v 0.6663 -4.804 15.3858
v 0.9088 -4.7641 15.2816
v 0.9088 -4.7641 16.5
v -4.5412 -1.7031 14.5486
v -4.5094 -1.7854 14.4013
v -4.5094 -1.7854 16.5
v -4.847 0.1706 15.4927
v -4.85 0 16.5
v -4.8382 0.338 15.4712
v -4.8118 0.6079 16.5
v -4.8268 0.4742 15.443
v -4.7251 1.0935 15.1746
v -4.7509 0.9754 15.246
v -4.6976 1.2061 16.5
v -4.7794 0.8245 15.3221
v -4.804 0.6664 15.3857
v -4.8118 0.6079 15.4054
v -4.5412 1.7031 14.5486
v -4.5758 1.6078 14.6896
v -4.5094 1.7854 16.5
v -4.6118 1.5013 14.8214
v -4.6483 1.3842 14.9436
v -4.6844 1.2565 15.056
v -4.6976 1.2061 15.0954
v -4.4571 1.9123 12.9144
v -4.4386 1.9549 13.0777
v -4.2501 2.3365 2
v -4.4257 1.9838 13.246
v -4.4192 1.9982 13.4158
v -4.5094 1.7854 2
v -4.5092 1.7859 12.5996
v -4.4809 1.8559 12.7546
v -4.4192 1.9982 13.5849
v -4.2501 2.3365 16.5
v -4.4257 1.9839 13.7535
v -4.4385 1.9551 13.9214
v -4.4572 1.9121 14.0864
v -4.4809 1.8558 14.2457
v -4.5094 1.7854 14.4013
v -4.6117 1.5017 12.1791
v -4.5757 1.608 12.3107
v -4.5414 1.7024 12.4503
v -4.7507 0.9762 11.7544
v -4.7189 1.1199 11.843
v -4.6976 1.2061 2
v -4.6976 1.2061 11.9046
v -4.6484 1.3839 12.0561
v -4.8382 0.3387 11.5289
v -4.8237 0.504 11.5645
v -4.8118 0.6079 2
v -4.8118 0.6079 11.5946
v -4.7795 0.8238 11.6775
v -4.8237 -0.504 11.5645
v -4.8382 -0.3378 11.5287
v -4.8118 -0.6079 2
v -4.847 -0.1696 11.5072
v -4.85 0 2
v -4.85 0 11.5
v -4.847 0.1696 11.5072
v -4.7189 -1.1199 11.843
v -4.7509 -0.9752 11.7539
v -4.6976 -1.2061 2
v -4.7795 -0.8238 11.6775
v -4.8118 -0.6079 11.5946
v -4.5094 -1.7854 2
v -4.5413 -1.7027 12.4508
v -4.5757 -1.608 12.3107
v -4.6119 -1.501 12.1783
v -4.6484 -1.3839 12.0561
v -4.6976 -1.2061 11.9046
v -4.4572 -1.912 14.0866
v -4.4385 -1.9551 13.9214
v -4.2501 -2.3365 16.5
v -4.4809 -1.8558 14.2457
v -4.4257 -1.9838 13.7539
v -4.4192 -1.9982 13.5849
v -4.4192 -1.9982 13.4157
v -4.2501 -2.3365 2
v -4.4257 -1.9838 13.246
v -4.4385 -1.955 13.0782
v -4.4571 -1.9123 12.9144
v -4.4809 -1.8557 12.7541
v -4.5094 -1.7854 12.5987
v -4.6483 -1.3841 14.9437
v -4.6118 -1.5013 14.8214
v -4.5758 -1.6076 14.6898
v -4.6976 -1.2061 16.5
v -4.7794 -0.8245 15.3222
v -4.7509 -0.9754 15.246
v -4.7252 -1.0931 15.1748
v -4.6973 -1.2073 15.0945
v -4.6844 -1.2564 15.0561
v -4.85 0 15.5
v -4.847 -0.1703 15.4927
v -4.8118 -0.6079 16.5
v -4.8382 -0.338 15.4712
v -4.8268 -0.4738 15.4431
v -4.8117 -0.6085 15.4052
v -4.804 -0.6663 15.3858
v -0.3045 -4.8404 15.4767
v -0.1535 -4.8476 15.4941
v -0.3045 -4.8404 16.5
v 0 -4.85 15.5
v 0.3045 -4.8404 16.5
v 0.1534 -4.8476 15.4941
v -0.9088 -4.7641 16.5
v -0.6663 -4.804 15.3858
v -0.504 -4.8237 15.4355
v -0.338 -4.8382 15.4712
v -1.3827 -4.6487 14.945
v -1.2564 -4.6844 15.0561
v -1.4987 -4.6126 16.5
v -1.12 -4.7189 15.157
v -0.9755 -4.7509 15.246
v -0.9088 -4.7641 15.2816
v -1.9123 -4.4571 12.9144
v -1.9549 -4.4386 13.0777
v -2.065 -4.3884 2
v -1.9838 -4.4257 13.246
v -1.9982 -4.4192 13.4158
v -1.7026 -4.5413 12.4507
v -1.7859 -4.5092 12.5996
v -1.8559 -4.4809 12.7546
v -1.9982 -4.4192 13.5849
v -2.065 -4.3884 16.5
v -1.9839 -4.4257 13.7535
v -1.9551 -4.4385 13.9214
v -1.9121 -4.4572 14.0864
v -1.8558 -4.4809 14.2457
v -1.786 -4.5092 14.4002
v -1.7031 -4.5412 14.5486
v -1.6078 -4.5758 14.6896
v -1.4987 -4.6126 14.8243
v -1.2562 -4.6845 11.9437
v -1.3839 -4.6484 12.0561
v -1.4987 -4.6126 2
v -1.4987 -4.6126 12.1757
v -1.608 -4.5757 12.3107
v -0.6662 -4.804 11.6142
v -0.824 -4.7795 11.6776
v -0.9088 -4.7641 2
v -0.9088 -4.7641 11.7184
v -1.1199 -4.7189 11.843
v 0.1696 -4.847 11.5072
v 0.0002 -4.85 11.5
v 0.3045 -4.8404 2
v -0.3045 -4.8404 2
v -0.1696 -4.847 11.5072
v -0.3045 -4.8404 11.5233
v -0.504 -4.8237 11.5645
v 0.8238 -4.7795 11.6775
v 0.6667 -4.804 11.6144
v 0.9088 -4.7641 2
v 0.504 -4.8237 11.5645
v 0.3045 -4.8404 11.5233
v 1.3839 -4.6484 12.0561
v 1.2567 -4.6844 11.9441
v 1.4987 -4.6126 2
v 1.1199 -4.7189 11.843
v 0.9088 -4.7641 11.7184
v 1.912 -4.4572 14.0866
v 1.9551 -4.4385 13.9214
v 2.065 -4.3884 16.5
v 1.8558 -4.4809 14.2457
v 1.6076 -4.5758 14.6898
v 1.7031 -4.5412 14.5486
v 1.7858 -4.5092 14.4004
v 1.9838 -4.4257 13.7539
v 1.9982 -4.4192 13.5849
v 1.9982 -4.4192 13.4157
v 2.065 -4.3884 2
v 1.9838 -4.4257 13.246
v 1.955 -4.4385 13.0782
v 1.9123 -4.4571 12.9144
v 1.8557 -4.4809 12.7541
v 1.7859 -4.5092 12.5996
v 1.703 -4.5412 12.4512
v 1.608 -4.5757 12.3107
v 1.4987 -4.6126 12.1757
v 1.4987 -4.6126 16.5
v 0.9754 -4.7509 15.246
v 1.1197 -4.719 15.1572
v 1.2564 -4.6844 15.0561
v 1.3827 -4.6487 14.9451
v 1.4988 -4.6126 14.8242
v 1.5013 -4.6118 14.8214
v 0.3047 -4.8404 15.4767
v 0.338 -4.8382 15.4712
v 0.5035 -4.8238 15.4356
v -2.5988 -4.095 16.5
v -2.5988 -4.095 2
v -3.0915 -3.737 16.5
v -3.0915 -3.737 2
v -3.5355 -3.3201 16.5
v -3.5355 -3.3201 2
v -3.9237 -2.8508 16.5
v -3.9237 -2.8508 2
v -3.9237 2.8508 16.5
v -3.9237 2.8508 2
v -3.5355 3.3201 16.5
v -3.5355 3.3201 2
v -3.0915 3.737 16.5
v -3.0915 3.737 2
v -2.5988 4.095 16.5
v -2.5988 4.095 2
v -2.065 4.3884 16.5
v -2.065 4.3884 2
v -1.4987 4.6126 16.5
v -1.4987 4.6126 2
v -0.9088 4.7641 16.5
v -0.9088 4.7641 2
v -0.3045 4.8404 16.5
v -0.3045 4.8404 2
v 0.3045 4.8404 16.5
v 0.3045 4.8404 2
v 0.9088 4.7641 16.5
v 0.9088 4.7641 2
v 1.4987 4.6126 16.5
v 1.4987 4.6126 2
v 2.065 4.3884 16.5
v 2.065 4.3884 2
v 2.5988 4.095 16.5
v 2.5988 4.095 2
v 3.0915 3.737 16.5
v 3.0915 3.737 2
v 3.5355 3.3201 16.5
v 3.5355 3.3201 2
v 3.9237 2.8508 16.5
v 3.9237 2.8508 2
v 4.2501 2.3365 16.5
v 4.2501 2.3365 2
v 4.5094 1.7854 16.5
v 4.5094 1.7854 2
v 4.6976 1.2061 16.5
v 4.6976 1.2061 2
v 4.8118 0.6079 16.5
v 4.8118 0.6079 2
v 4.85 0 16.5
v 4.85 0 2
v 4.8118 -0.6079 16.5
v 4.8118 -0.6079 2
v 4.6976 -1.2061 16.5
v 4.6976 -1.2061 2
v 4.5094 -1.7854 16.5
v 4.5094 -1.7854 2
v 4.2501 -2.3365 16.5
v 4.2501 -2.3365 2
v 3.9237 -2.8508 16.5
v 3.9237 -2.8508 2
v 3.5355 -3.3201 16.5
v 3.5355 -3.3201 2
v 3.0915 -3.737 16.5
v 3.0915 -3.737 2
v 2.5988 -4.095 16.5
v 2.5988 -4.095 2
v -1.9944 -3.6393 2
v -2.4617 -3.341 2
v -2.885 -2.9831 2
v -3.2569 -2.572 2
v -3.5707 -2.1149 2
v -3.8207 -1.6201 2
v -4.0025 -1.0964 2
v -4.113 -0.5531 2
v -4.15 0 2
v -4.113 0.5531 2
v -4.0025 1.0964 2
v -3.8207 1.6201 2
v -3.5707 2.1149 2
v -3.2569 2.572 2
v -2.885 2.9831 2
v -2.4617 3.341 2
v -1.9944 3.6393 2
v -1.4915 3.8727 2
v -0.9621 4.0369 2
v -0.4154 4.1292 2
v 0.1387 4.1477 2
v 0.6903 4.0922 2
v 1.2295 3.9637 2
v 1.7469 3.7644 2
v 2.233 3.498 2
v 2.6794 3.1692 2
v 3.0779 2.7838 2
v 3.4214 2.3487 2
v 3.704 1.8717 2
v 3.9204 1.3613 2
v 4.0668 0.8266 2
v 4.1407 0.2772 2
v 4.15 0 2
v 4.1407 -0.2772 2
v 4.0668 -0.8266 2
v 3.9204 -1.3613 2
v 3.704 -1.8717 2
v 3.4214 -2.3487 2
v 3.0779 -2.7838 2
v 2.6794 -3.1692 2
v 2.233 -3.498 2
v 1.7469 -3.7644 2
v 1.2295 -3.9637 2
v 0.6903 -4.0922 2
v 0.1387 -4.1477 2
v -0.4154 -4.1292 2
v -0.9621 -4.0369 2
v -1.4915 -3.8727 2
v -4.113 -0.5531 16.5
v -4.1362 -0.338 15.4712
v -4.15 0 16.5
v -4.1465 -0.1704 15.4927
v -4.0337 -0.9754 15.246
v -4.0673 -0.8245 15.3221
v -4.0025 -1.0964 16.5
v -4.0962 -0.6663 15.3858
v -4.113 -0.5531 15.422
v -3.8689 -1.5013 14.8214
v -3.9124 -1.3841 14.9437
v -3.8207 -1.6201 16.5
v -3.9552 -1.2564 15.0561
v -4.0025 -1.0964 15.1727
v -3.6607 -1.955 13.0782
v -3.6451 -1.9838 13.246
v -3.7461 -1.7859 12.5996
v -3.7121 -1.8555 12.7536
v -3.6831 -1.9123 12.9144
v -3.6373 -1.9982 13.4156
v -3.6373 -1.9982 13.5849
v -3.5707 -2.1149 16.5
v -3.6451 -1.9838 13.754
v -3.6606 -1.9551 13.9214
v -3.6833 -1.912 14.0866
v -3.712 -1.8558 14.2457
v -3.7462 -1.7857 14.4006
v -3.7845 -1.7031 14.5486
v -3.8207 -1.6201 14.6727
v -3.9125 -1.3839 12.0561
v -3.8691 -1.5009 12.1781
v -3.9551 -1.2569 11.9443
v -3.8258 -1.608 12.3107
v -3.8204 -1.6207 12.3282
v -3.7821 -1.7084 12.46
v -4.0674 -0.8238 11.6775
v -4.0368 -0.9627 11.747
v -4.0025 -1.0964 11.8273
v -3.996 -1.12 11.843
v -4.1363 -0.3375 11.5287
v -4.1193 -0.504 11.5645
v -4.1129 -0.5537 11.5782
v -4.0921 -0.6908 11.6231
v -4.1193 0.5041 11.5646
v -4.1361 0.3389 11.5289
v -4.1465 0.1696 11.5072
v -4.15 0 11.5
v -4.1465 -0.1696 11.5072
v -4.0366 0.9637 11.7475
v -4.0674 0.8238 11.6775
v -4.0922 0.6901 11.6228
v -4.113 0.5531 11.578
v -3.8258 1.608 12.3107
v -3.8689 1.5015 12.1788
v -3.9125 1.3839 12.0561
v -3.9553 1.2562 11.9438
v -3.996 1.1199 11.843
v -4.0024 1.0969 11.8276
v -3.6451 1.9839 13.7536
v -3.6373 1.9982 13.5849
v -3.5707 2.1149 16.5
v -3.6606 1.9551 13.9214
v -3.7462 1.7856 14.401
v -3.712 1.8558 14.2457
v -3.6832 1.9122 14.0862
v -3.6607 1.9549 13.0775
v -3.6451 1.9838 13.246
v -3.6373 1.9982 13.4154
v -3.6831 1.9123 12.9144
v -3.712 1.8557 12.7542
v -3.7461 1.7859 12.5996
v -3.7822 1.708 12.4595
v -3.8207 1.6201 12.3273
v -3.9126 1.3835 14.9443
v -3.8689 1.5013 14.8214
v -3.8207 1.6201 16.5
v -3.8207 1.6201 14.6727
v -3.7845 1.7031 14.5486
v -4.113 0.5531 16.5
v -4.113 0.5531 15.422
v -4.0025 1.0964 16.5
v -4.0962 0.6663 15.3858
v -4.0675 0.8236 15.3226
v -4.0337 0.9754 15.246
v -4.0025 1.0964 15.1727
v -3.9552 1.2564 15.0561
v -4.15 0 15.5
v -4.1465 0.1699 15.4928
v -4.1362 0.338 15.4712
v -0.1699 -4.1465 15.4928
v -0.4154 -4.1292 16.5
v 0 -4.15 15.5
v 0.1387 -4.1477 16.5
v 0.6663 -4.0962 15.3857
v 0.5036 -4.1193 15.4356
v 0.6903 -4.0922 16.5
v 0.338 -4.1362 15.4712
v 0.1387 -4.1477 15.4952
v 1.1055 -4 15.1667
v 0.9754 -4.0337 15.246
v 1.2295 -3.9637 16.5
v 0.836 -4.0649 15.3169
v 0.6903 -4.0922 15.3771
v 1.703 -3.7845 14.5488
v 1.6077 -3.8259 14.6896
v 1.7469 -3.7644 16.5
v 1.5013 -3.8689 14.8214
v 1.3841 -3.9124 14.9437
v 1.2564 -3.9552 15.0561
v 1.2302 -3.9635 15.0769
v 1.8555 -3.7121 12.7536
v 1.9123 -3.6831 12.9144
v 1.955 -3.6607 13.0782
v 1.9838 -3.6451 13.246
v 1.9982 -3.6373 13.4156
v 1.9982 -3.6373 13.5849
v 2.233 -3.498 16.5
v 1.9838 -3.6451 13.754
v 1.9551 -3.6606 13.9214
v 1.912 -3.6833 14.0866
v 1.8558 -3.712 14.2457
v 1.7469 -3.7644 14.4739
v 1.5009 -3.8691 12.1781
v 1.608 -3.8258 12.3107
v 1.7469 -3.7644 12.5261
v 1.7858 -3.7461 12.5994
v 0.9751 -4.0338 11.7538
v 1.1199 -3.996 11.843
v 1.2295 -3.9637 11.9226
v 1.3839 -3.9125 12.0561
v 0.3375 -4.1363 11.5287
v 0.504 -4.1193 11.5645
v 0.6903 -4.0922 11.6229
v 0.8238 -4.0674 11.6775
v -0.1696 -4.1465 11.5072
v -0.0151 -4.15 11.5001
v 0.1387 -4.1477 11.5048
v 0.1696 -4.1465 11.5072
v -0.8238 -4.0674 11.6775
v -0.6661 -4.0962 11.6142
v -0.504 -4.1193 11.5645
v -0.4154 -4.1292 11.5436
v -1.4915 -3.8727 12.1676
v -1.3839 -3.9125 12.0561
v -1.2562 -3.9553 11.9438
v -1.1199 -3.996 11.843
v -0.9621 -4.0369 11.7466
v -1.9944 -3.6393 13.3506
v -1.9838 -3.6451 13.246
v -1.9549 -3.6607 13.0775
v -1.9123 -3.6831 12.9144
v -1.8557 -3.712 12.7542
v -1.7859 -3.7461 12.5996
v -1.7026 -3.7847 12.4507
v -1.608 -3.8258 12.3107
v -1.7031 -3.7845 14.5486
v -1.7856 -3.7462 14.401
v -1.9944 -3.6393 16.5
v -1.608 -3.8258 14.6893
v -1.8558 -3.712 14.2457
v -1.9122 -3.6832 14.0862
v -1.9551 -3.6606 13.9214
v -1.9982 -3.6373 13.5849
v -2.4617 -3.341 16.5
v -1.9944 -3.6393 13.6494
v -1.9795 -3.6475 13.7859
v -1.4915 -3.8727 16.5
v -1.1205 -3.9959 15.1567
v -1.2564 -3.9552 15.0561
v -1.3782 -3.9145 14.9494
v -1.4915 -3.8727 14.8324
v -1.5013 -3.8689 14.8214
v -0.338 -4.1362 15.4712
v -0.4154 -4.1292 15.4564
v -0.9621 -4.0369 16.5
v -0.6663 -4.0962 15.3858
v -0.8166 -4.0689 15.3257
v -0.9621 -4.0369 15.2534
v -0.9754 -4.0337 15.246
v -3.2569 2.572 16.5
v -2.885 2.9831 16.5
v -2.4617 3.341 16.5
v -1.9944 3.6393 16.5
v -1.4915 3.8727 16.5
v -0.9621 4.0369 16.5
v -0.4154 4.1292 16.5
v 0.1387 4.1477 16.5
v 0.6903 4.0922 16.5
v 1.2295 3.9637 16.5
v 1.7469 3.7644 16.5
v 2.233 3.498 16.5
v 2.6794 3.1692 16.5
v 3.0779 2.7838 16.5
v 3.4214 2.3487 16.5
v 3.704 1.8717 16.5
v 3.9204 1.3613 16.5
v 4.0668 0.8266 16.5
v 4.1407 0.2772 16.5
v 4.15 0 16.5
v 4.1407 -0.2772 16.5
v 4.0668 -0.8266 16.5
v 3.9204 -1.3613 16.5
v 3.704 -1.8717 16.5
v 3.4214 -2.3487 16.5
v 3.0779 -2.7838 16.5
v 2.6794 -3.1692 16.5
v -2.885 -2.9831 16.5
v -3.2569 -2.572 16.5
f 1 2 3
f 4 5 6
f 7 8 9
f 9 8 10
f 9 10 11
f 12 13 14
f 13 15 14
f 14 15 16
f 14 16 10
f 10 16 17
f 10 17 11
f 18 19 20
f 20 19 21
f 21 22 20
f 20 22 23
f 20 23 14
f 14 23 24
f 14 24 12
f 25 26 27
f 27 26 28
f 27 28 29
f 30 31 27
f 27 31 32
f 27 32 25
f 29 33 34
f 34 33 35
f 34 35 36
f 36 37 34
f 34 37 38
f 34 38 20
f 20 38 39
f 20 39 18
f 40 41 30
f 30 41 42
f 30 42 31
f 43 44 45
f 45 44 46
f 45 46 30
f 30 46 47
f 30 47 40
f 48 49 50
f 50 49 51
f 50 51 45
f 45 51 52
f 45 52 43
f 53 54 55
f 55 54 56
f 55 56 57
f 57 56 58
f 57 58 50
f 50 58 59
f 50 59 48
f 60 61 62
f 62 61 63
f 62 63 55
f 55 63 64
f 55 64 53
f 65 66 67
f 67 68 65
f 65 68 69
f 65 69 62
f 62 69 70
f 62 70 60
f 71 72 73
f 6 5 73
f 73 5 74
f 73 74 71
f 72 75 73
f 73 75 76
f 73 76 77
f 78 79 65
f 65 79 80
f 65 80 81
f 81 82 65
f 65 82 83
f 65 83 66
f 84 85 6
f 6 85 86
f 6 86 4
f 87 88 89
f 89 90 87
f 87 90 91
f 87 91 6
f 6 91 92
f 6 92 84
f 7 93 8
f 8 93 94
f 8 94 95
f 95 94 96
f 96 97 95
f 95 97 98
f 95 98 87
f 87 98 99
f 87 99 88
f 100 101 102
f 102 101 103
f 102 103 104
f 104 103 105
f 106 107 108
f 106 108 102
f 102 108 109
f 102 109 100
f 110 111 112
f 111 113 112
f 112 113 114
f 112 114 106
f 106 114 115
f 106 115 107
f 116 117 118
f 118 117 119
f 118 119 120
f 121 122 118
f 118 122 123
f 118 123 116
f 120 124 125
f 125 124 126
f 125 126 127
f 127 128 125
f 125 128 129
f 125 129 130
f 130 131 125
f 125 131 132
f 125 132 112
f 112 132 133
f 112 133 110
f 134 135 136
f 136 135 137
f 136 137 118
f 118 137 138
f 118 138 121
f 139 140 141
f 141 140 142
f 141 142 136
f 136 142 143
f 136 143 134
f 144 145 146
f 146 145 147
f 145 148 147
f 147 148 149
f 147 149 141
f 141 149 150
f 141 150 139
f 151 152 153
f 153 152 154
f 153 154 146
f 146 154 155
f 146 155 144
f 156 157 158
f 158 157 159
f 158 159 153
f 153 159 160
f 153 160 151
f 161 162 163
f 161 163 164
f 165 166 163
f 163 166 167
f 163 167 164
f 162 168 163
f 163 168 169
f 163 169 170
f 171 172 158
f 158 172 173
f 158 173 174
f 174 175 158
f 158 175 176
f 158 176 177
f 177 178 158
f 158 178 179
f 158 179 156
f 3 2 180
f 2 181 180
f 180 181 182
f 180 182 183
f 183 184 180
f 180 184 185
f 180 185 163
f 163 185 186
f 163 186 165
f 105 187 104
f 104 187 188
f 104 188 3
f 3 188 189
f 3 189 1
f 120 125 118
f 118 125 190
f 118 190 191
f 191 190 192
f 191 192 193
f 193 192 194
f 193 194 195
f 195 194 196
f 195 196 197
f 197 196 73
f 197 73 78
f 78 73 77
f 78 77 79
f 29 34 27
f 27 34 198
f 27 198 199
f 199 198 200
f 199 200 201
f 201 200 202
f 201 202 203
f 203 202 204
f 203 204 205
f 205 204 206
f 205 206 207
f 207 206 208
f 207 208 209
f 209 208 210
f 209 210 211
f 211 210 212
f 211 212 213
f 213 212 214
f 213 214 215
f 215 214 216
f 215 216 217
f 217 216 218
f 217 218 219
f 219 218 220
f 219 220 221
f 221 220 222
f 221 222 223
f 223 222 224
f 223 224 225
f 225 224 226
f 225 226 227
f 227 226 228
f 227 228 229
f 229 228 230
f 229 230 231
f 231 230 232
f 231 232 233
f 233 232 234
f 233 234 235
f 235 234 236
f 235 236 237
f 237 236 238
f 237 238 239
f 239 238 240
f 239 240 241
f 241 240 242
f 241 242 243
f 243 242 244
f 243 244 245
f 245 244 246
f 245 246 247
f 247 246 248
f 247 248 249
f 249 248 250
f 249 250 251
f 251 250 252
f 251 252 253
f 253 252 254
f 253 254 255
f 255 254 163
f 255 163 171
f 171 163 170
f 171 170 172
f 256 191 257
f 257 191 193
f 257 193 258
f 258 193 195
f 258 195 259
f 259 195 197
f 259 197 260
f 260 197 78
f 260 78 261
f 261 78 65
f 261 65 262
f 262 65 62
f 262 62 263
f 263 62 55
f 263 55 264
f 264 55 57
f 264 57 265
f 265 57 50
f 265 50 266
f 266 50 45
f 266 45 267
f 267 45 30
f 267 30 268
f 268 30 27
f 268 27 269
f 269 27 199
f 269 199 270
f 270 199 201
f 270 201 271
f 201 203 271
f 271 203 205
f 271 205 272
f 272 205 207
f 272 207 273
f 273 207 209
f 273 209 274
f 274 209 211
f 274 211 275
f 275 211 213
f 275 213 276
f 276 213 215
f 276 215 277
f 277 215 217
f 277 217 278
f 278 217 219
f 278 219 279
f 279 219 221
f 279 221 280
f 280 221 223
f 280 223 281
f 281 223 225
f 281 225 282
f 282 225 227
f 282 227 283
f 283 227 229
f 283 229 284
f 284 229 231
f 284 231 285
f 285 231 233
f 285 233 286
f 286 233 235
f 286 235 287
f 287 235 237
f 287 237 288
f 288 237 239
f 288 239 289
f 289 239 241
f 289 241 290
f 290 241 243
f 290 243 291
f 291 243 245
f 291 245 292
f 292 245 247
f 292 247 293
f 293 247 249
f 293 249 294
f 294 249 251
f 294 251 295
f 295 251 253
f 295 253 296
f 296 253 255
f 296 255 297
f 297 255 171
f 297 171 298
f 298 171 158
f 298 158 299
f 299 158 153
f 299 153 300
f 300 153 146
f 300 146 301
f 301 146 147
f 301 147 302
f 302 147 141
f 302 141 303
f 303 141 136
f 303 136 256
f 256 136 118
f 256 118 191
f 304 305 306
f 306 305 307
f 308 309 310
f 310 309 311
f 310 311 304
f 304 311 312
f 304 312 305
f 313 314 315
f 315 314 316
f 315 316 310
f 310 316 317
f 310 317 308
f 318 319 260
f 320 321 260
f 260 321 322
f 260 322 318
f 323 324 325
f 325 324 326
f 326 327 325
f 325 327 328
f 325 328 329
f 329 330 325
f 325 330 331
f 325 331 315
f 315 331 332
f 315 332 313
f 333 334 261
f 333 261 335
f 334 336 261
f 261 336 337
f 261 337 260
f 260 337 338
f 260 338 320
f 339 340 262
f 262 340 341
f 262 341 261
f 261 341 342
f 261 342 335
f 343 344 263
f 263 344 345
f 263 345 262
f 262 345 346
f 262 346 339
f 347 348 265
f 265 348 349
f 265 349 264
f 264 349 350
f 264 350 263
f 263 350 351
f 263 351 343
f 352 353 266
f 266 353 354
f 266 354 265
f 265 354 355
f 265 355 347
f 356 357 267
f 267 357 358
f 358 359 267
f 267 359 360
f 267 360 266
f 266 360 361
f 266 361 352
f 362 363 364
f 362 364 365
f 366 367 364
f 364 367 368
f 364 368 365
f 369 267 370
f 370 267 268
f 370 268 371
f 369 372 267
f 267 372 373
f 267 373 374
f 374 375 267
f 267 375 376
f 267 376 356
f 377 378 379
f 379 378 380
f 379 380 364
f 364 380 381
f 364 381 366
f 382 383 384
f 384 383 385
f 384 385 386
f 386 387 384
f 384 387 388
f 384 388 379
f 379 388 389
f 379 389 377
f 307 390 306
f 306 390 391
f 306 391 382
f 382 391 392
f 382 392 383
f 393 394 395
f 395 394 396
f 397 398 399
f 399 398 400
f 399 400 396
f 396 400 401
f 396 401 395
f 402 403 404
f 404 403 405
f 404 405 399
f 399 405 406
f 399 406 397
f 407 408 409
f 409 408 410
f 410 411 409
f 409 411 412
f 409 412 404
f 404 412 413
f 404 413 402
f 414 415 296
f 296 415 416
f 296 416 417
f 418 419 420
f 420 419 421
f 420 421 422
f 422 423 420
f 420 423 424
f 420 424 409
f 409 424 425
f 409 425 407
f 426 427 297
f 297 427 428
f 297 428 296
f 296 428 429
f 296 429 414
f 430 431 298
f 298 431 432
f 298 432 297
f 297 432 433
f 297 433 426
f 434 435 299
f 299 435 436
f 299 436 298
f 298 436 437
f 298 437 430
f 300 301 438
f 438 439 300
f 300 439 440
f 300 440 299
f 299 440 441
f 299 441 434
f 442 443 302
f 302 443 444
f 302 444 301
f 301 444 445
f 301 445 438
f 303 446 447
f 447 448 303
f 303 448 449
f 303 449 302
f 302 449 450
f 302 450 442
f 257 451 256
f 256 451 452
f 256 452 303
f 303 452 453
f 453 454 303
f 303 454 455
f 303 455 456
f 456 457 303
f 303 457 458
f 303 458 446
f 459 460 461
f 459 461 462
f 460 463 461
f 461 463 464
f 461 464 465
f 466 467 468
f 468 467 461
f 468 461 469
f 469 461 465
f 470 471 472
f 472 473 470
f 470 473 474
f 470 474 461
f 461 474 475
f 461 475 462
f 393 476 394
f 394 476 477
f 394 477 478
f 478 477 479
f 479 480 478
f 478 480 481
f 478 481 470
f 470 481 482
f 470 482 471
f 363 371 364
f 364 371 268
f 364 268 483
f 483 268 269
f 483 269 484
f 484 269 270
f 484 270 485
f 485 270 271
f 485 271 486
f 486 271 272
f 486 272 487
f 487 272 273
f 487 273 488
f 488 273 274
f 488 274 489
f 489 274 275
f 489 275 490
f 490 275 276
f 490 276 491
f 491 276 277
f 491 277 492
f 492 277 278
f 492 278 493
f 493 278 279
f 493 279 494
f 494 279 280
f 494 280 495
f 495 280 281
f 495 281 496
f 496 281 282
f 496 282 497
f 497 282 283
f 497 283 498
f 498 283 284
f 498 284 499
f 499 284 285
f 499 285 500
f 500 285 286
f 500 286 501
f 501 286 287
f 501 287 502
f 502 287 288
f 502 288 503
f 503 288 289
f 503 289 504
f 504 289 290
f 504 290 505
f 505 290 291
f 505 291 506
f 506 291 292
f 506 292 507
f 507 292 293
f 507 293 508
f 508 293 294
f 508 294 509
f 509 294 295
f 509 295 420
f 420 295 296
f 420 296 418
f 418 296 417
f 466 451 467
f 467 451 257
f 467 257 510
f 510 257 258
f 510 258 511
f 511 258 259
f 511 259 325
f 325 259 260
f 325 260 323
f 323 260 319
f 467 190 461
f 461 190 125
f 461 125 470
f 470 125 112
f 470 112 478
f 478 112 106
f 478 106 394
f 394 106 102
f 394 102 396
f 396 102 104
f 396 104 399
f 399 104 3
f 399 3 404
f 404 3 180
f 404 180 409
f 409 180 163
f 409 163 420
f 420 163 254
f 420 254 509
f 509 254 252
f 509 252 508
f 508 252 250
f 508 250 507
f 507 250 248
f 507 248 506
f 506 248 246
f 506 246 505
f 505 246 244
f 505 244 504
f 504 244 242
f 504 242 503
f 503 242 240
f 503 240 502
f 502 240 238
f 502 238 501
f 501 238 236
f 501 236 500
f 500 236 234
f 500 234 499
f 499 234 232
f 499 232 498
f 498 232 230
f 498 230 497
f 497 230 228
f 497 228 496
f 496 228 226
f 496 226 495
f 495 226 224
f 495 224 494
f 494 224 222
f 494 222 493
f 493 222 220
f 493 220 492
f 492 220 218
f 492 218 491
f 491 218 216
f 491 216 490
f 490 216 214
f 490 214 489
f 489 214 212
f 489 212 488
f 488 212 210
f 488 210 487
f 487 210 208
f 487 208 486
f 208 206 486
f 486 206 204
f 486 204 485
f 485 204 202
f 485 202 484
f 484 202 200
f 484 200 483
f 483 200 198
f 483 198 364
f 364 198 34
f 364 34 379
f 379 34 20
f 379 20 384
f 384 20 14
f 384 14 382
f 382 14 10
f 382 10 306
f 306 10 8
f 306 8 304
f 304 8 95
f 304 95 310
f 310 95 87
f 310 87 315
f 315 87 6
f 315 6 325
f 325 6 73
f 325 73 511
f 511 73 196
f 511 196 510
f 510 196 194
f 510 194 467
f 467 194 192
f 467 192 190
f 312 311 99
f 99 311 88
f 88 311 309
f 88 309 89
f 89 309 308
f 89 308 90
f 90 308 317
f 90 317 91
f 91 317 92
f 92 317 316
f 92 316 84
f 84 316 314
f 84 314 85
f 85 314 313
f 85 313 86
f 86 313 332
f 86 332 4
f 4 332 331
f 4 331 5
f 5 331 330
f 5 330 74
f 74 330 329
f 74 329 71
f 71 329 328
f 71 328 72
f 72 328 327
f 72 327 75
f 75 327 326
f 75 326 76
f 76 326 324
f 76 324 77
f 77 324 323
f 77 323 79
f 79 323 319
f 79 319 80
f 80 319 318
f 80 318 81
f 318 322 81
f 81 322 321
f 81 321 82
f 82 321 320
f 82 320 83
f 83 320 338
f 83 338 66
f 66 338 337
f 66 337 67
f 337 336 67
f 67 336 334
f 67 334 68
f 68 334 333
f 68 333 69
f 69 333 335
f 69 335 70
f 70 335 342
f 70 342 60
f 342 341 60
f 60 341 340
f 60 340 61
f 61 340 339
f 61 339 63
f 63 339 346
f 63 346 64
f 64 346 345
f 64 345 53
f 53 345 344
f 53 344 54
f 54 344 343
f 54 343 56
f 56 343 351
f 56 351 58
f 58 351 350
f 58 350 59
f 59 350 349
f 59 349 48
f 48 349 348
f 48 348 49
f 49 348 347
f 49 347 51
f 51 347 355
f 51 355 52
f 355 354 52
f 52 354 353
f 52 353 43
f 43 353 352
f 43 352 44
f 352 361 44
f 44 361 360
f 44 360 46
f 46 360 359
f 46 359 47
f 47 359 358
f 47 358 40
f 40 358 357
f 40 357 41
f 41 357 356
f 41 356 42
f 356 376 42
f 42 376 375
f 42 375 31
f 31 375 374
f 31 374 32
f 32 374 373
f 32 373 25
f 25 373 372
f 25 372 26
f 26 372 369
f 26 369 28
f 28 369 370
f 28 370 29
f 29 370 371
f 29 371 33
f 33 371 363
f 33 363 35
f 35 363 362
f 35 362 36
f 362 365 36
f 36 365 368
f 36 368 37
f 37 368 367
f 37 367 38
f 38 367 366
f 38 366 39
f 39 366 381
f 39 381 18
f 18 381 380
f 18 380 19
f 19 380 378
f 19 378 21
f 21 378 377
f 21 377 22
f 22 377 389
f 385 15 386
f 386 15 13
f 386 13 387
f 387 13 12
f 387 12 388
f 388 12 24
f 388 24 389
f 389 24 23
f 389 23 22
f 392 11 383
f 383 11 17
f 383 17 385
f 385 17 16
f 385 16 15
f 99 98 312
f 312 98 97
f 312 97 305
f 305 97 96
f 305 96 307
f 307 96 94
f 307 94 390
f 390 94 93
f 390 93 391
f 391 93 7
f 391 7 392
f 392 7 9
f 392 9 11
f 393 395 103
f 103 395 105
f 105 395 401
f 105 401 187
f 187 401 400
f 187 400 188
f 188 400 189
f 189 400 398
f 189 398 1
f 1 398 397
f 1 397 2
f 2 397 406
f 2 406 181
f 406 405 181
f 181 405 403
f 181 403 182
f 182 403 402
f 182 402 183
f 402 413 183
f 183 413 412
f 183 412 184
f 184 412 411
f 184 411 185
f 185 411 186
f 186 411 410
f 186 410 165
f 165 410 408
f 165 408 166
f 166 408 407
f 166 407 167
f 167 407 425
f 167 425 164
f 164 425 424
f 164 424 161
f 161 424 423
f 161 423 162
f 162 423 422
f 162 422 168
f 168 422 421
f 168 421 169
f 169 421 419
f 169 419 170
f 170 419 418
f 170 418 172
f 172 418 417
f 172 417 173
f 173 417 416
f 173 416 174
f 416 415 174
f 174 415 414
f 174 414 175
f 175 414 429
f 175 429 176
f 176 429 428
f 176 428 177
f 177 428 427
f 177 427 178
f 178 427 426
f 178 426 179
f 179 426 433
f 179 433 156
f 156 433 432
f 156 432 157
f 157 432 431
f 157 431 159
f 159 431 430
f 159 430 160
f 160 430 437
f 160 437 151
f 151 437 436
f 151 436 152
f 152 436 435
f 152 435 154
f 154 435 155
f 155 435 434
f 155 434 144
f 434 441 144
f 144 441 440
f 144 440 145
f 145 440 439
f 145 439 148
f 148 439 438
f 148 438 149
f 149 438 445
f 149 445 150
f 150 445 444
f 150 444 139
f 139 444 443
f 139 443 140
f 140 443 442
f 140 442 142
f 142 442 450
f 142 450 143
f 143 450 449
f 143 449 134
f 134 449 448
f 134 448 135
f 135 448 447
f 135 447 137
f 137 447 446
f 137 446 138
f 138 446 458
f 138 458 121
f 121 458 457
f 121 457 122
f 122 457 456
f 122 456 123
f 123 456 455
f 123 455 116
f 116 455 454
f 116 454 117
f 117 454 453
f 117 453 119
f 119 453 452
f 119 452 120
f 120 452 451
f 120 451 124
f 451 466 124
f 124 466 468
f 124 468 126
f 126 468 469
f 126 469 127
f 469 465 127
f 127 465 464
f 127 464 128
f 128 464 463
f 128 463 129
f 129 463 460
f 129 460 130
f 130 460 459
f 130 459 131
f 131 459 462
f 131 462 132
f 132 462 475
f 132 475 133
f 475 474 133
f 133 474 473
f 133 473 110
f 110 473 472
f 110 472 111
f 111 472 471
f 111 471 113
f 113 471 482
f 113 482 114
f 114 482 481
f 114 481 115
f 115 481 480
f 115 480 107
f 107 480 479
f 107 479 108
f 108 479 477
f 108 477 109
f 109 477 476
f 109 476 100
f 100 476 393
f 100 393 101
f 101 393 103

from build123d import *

# Parameters (mm, degrees)
SKETCH3_R           = 4.85
SKETCH3_R_2         = 4.15
BOSS_EXTRUDE1_DEPTH = 14.5
SKETCH4_R           = 2
CUT_EXTRUDE1_DEPTH  = 11.5
SKETCH5_R           = 2
CUT_EXTRUDE2_DEPTH  = 11.5


with BuildPart() as part:
    # Sketch3 → Boss-Extrude1 (new body)
    with BuildSketch(Plane.XY.offset(2)):
        Circle(SKETCH3_R)
        Circle(SKETCH3_R_2, mode=Mode.SUBTRACT)
    extrude(amount=BOSS_EXTRUDE1_DEPTH)

    # Sketch4 → Cut-Extrude1 (cut)
    with BuildSketch(Plane(origin=(-13.41400196, 54.908076208, -66.470187191), x_dir=(0, 1, 0), z_dir=(1, 0, 0))):
        with Locations((-54.908076208, 60.970187191)):
            Circle(SKETCH4_R)
        with Locations(Location((-54.908076208, 79.970187191, 0), (0, 0, 90))):
            Circle(SKETCH4_R)
    extrude(amount=CUT_EXTRUDE1_DEPTH, mode=Mode.SUBTRACT)

    # Sketch5 → Cut-Extrude2 (cut)
    with BuildSketch(Plane(origin=(0, -2, -8.5), x_dir=(1, 0, 0), z_dir=(0, 1, 0))):
        with Locations(Location((0, -22, 0), (0, 0, 270))):
            Circle(SKETCH5_R)
    extrude(amount=-CUT_EXTRUDE2_DEPTH, mode=Mode.SUBTRACT)


solid = part.part
